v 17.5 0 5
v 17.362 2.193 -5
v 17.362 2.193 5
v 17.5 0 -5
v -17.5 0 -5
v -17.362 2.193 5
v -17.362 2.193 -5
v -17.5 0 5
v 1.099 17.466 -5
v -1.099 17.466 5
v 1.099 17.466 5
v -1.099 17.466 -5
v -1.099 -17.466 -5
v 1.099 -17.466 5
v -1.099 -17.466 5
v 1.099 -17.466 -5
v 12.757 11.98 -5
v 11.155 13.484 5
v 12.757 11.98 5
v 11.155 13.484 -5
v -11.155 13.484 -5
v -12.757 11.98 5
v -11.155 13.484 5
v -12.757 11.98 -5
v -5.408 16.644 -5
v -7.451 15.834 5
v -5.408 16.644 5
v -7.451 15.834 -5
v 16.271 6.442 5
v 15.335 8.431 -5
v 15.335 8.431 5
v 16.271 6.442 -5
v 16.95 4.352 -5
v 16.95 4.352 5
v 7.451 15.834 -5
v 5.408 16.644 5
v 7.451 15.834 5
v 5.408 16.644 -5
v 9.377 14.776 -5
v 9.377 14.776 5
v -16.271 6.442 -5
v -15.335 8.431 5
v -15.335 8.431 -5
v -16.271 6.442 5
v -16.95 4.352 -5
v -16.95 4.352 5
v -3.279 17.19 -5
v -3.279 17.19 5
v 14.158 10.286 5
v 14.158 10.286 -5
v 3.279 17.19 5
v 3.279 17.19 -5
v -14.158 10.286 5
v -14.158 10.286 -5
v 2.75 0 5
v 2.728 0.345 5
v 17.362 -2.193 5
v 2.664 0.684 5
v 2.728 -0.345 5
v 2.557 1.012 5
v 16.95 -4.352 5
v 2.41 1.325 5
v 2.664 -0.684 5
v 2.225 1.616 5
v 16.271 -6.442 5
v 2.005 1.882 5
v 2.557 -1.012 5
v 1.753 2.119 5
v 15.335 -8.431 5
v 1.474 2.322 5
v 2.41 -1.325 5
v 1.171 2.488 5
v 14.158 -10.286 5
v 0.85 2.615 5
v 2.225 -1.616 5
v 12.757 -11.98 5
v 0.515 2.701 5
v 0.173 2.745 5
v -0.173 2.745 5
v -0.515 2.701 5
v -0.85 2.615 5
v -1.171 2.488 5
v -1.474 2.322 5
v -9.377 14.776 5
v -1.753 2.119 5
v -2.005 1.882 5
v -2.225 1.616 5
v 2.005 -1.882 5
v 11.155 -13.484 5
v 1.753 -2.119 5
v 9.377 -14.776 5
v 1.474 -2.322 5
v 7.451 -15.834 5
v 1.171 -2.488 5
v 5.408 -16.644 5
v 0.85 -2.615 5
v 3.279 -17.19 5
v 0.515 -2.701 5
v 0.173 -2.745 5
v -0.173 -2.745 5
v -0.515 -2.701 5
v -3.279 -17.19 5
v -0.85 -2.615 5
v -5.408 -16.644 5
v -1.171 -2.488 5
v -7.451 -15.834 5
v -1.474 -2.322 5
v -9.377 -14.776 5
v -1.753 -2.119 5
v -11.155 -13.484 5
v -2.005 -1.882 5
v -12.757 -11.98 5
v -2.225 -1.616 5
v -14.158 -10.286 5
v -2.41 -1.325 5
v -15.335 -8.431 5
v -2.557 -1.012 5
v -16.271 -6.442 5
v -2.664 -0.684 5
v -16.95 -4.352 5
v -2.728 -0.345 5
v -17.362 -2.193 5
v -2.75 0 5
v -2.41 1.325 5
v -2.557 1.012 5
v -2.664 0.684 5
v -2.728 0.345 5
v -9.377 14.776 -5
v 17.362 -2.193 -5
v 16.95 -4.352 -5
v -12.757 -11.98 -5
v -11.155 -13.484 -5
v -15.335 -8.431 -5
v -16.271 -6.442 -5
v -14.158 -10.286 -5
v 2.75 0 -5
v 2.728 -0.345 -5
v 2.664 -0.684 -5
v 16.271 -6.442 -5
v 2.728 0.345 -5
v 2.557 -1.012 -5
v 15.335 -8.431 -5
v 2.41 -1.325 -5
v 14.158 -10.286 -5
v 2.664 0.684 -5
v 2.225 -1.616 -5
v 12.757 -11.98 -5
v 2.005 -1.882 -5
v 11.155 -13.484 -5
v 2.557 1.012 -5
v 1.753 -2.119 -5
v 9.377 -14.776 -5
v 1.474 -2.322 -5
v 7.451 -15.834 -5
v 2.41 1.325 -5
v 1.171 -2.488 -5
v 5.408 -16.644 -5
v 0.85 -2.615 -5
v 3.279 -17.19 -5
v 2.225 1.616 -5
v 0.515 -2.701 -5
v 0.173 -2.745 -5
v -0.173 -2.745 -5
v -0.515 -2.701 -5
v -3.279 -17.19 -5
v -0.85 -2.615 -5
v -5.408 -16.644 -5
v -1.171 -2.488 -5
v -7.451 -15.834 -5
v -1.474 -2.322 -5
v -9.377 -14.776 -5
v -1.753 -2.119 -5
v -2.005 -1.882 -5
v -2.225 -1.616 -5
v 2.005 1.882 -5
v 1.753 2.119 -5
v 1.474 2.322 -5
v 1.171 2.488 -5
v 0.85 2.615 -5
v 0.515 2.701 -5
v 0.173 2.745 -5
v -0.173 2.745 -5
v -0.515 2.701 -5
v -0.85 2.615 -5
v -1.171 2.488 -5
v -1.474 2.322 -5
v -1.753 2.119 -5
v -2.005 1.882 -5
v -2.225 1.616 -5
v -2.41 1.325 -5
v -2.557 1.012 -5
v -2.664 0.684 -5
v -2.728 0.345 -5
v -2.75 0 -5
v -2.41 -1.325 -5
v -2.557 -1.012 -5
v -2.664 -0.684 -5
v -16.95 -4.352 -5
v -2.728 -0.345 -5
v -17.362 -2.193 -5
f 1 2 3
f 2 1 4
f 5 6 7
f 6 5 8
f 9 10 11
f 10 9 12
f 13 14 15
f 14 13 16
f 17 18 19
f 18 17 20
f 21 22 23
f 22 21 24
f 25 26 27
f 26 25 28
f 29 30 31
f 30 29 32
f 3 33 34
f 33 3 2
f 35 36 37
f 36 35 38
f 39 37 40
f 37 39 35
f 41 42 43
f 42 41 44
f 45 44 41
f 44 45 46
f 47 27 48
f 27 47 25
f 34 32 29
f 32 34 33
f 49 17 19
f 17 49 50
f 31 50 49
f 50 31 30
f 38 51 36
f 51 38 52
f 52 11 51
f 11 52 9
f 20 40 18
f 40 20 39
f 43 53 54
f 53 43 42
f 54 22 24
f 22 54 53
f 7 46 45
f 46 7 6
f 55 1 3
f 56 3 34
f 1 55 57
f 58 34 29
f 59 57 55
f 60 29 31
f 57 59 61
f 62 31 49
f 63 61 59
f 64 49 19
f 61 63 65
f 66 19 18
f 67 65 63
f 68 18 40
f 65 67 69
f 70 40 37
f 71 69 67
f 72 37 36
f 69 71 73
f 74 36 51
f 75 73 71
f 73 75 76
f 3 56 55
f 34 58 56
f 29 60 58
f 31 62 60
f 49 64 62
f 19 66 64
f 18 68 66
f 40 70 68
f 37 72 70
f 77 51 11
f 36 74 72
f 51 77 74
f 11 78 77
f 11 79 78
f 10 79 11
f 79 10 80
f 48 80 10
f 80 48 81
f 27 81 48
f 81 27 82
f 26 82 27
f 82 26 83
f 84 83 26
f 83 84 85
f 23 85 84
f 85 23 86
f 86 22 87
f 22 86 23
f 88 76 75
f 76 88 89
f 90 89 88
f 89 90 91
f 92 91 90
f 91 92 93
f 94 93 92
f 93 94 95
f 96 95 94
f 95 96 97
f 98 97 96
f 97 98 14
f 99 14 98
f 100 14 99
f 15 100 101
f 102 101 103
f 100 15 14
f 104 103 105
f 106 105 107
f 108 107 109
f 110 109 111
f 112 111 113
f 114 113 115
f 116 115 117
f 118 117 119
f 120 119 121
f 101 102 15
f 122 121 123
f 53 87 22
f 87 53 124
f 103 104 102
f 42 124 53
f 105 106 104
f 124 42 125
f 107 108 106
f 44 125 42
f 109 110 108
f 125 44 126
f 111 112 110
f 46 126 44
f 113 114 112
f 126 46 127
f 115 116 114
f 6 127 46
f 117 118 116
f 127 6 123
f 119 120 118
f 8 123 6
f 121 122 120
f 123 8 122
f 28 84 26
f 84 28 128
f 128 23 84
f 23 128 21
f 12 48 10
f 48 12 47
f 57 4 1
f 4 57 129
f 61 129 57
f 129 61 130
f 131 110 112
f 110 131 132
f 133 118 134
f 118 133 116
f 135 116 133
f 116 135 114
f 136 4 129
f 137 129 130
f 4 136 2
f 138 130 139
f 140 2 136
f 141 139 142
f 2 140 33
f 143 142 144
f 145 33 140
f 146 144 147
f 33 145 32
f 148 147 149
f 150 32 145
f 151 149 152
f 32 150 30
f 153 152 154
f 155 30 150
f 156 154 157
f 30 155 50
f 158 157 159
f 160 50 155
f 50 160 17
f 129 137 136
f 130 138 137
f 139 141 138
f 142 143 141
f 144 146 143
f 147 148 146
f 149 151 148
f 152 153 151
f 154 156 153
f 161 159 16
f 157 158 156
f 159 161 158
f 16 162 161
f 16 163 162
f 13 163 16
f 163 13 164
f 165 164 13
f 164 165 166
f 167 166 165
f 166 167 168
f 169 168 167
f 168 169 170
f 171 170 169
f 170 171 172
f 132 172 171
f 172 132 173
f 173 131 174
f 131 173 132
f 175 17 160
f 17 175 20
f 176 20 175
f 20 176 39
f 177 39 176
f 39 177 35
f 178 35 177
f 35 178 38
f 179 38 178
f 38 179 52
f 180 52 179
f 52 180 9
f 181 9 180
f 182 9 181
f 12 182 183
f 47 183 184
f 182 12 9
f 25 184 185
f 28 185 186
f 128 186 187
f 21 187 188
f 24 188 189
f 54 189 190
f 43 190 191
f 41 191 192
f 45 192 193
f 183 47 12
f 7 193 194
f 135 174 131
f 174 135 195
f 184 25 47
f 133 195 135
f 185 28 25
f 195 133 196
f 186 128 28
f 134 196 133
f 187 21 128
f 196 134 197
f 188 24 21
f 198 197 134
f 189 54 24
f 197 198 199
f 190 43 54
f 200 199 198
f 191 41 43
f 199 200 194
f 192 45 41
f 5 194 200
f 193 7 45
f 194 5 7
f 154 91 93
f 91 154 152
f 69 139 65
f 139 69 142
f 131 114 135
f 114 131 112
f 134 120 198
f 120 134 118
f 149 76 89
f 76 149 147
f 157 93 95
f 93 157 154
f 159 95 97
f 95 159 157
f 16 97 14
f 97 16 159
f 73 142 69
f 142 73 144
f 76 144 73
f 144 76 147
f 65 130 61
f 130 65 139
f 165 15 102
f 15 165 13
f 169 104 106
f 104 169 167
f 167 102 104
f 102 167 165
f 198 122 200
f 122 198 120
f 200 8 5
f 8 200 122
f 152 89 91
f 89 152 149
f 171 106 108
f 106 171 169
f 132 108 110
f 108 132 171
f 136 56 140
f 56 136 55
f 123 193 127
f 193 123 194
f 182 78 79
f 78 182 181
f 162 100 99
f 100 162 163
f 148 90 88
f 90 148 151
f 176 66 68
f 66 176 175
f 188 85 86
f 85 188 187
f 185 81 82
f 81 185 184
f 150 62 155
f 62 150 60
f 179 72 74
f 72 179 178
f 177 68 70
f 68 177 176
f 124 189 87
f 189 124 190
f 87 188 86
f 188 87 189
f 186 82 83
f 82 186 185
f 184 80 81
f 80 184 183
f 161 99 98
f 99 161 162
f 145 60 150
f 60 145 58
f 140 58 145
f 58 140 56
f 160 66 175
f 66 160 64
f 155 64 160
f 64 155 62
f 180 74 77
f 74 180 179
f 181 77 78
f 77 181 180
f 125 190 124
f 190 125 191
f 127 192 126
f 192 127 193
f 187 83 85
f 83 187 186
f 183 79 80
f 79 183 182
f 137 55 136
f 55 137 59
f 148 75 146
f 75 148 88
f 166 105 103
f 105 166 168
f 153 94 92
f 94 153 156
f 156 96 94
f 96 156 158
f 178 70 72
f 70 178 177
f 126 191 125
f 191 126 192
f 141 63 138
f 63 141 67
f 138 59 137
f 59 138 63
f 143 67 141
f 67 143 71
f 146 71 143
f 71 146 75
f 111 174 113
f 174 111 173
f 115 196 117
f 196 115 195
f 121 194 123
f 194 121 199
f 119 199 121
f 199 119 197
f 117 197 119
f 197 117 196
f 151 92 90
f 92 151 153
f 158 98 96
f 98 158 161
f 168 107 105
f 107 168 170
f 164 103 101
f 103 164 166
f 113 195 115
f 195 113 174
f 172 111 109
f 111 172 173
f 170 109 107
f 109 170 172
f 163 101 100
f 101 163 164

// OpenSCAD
$fn = 50;


difference() {
	union() {
		translate(v = [0, 0, -5.0000000000]) {
			cylinder(h = 10, r = 17.5000000000);
		}
	}
	union() {
		translate(v = [0, 0, -100.0000000000]) {
			cylinder(h = 200, r = 2.7500000000);
		}
	}
}
